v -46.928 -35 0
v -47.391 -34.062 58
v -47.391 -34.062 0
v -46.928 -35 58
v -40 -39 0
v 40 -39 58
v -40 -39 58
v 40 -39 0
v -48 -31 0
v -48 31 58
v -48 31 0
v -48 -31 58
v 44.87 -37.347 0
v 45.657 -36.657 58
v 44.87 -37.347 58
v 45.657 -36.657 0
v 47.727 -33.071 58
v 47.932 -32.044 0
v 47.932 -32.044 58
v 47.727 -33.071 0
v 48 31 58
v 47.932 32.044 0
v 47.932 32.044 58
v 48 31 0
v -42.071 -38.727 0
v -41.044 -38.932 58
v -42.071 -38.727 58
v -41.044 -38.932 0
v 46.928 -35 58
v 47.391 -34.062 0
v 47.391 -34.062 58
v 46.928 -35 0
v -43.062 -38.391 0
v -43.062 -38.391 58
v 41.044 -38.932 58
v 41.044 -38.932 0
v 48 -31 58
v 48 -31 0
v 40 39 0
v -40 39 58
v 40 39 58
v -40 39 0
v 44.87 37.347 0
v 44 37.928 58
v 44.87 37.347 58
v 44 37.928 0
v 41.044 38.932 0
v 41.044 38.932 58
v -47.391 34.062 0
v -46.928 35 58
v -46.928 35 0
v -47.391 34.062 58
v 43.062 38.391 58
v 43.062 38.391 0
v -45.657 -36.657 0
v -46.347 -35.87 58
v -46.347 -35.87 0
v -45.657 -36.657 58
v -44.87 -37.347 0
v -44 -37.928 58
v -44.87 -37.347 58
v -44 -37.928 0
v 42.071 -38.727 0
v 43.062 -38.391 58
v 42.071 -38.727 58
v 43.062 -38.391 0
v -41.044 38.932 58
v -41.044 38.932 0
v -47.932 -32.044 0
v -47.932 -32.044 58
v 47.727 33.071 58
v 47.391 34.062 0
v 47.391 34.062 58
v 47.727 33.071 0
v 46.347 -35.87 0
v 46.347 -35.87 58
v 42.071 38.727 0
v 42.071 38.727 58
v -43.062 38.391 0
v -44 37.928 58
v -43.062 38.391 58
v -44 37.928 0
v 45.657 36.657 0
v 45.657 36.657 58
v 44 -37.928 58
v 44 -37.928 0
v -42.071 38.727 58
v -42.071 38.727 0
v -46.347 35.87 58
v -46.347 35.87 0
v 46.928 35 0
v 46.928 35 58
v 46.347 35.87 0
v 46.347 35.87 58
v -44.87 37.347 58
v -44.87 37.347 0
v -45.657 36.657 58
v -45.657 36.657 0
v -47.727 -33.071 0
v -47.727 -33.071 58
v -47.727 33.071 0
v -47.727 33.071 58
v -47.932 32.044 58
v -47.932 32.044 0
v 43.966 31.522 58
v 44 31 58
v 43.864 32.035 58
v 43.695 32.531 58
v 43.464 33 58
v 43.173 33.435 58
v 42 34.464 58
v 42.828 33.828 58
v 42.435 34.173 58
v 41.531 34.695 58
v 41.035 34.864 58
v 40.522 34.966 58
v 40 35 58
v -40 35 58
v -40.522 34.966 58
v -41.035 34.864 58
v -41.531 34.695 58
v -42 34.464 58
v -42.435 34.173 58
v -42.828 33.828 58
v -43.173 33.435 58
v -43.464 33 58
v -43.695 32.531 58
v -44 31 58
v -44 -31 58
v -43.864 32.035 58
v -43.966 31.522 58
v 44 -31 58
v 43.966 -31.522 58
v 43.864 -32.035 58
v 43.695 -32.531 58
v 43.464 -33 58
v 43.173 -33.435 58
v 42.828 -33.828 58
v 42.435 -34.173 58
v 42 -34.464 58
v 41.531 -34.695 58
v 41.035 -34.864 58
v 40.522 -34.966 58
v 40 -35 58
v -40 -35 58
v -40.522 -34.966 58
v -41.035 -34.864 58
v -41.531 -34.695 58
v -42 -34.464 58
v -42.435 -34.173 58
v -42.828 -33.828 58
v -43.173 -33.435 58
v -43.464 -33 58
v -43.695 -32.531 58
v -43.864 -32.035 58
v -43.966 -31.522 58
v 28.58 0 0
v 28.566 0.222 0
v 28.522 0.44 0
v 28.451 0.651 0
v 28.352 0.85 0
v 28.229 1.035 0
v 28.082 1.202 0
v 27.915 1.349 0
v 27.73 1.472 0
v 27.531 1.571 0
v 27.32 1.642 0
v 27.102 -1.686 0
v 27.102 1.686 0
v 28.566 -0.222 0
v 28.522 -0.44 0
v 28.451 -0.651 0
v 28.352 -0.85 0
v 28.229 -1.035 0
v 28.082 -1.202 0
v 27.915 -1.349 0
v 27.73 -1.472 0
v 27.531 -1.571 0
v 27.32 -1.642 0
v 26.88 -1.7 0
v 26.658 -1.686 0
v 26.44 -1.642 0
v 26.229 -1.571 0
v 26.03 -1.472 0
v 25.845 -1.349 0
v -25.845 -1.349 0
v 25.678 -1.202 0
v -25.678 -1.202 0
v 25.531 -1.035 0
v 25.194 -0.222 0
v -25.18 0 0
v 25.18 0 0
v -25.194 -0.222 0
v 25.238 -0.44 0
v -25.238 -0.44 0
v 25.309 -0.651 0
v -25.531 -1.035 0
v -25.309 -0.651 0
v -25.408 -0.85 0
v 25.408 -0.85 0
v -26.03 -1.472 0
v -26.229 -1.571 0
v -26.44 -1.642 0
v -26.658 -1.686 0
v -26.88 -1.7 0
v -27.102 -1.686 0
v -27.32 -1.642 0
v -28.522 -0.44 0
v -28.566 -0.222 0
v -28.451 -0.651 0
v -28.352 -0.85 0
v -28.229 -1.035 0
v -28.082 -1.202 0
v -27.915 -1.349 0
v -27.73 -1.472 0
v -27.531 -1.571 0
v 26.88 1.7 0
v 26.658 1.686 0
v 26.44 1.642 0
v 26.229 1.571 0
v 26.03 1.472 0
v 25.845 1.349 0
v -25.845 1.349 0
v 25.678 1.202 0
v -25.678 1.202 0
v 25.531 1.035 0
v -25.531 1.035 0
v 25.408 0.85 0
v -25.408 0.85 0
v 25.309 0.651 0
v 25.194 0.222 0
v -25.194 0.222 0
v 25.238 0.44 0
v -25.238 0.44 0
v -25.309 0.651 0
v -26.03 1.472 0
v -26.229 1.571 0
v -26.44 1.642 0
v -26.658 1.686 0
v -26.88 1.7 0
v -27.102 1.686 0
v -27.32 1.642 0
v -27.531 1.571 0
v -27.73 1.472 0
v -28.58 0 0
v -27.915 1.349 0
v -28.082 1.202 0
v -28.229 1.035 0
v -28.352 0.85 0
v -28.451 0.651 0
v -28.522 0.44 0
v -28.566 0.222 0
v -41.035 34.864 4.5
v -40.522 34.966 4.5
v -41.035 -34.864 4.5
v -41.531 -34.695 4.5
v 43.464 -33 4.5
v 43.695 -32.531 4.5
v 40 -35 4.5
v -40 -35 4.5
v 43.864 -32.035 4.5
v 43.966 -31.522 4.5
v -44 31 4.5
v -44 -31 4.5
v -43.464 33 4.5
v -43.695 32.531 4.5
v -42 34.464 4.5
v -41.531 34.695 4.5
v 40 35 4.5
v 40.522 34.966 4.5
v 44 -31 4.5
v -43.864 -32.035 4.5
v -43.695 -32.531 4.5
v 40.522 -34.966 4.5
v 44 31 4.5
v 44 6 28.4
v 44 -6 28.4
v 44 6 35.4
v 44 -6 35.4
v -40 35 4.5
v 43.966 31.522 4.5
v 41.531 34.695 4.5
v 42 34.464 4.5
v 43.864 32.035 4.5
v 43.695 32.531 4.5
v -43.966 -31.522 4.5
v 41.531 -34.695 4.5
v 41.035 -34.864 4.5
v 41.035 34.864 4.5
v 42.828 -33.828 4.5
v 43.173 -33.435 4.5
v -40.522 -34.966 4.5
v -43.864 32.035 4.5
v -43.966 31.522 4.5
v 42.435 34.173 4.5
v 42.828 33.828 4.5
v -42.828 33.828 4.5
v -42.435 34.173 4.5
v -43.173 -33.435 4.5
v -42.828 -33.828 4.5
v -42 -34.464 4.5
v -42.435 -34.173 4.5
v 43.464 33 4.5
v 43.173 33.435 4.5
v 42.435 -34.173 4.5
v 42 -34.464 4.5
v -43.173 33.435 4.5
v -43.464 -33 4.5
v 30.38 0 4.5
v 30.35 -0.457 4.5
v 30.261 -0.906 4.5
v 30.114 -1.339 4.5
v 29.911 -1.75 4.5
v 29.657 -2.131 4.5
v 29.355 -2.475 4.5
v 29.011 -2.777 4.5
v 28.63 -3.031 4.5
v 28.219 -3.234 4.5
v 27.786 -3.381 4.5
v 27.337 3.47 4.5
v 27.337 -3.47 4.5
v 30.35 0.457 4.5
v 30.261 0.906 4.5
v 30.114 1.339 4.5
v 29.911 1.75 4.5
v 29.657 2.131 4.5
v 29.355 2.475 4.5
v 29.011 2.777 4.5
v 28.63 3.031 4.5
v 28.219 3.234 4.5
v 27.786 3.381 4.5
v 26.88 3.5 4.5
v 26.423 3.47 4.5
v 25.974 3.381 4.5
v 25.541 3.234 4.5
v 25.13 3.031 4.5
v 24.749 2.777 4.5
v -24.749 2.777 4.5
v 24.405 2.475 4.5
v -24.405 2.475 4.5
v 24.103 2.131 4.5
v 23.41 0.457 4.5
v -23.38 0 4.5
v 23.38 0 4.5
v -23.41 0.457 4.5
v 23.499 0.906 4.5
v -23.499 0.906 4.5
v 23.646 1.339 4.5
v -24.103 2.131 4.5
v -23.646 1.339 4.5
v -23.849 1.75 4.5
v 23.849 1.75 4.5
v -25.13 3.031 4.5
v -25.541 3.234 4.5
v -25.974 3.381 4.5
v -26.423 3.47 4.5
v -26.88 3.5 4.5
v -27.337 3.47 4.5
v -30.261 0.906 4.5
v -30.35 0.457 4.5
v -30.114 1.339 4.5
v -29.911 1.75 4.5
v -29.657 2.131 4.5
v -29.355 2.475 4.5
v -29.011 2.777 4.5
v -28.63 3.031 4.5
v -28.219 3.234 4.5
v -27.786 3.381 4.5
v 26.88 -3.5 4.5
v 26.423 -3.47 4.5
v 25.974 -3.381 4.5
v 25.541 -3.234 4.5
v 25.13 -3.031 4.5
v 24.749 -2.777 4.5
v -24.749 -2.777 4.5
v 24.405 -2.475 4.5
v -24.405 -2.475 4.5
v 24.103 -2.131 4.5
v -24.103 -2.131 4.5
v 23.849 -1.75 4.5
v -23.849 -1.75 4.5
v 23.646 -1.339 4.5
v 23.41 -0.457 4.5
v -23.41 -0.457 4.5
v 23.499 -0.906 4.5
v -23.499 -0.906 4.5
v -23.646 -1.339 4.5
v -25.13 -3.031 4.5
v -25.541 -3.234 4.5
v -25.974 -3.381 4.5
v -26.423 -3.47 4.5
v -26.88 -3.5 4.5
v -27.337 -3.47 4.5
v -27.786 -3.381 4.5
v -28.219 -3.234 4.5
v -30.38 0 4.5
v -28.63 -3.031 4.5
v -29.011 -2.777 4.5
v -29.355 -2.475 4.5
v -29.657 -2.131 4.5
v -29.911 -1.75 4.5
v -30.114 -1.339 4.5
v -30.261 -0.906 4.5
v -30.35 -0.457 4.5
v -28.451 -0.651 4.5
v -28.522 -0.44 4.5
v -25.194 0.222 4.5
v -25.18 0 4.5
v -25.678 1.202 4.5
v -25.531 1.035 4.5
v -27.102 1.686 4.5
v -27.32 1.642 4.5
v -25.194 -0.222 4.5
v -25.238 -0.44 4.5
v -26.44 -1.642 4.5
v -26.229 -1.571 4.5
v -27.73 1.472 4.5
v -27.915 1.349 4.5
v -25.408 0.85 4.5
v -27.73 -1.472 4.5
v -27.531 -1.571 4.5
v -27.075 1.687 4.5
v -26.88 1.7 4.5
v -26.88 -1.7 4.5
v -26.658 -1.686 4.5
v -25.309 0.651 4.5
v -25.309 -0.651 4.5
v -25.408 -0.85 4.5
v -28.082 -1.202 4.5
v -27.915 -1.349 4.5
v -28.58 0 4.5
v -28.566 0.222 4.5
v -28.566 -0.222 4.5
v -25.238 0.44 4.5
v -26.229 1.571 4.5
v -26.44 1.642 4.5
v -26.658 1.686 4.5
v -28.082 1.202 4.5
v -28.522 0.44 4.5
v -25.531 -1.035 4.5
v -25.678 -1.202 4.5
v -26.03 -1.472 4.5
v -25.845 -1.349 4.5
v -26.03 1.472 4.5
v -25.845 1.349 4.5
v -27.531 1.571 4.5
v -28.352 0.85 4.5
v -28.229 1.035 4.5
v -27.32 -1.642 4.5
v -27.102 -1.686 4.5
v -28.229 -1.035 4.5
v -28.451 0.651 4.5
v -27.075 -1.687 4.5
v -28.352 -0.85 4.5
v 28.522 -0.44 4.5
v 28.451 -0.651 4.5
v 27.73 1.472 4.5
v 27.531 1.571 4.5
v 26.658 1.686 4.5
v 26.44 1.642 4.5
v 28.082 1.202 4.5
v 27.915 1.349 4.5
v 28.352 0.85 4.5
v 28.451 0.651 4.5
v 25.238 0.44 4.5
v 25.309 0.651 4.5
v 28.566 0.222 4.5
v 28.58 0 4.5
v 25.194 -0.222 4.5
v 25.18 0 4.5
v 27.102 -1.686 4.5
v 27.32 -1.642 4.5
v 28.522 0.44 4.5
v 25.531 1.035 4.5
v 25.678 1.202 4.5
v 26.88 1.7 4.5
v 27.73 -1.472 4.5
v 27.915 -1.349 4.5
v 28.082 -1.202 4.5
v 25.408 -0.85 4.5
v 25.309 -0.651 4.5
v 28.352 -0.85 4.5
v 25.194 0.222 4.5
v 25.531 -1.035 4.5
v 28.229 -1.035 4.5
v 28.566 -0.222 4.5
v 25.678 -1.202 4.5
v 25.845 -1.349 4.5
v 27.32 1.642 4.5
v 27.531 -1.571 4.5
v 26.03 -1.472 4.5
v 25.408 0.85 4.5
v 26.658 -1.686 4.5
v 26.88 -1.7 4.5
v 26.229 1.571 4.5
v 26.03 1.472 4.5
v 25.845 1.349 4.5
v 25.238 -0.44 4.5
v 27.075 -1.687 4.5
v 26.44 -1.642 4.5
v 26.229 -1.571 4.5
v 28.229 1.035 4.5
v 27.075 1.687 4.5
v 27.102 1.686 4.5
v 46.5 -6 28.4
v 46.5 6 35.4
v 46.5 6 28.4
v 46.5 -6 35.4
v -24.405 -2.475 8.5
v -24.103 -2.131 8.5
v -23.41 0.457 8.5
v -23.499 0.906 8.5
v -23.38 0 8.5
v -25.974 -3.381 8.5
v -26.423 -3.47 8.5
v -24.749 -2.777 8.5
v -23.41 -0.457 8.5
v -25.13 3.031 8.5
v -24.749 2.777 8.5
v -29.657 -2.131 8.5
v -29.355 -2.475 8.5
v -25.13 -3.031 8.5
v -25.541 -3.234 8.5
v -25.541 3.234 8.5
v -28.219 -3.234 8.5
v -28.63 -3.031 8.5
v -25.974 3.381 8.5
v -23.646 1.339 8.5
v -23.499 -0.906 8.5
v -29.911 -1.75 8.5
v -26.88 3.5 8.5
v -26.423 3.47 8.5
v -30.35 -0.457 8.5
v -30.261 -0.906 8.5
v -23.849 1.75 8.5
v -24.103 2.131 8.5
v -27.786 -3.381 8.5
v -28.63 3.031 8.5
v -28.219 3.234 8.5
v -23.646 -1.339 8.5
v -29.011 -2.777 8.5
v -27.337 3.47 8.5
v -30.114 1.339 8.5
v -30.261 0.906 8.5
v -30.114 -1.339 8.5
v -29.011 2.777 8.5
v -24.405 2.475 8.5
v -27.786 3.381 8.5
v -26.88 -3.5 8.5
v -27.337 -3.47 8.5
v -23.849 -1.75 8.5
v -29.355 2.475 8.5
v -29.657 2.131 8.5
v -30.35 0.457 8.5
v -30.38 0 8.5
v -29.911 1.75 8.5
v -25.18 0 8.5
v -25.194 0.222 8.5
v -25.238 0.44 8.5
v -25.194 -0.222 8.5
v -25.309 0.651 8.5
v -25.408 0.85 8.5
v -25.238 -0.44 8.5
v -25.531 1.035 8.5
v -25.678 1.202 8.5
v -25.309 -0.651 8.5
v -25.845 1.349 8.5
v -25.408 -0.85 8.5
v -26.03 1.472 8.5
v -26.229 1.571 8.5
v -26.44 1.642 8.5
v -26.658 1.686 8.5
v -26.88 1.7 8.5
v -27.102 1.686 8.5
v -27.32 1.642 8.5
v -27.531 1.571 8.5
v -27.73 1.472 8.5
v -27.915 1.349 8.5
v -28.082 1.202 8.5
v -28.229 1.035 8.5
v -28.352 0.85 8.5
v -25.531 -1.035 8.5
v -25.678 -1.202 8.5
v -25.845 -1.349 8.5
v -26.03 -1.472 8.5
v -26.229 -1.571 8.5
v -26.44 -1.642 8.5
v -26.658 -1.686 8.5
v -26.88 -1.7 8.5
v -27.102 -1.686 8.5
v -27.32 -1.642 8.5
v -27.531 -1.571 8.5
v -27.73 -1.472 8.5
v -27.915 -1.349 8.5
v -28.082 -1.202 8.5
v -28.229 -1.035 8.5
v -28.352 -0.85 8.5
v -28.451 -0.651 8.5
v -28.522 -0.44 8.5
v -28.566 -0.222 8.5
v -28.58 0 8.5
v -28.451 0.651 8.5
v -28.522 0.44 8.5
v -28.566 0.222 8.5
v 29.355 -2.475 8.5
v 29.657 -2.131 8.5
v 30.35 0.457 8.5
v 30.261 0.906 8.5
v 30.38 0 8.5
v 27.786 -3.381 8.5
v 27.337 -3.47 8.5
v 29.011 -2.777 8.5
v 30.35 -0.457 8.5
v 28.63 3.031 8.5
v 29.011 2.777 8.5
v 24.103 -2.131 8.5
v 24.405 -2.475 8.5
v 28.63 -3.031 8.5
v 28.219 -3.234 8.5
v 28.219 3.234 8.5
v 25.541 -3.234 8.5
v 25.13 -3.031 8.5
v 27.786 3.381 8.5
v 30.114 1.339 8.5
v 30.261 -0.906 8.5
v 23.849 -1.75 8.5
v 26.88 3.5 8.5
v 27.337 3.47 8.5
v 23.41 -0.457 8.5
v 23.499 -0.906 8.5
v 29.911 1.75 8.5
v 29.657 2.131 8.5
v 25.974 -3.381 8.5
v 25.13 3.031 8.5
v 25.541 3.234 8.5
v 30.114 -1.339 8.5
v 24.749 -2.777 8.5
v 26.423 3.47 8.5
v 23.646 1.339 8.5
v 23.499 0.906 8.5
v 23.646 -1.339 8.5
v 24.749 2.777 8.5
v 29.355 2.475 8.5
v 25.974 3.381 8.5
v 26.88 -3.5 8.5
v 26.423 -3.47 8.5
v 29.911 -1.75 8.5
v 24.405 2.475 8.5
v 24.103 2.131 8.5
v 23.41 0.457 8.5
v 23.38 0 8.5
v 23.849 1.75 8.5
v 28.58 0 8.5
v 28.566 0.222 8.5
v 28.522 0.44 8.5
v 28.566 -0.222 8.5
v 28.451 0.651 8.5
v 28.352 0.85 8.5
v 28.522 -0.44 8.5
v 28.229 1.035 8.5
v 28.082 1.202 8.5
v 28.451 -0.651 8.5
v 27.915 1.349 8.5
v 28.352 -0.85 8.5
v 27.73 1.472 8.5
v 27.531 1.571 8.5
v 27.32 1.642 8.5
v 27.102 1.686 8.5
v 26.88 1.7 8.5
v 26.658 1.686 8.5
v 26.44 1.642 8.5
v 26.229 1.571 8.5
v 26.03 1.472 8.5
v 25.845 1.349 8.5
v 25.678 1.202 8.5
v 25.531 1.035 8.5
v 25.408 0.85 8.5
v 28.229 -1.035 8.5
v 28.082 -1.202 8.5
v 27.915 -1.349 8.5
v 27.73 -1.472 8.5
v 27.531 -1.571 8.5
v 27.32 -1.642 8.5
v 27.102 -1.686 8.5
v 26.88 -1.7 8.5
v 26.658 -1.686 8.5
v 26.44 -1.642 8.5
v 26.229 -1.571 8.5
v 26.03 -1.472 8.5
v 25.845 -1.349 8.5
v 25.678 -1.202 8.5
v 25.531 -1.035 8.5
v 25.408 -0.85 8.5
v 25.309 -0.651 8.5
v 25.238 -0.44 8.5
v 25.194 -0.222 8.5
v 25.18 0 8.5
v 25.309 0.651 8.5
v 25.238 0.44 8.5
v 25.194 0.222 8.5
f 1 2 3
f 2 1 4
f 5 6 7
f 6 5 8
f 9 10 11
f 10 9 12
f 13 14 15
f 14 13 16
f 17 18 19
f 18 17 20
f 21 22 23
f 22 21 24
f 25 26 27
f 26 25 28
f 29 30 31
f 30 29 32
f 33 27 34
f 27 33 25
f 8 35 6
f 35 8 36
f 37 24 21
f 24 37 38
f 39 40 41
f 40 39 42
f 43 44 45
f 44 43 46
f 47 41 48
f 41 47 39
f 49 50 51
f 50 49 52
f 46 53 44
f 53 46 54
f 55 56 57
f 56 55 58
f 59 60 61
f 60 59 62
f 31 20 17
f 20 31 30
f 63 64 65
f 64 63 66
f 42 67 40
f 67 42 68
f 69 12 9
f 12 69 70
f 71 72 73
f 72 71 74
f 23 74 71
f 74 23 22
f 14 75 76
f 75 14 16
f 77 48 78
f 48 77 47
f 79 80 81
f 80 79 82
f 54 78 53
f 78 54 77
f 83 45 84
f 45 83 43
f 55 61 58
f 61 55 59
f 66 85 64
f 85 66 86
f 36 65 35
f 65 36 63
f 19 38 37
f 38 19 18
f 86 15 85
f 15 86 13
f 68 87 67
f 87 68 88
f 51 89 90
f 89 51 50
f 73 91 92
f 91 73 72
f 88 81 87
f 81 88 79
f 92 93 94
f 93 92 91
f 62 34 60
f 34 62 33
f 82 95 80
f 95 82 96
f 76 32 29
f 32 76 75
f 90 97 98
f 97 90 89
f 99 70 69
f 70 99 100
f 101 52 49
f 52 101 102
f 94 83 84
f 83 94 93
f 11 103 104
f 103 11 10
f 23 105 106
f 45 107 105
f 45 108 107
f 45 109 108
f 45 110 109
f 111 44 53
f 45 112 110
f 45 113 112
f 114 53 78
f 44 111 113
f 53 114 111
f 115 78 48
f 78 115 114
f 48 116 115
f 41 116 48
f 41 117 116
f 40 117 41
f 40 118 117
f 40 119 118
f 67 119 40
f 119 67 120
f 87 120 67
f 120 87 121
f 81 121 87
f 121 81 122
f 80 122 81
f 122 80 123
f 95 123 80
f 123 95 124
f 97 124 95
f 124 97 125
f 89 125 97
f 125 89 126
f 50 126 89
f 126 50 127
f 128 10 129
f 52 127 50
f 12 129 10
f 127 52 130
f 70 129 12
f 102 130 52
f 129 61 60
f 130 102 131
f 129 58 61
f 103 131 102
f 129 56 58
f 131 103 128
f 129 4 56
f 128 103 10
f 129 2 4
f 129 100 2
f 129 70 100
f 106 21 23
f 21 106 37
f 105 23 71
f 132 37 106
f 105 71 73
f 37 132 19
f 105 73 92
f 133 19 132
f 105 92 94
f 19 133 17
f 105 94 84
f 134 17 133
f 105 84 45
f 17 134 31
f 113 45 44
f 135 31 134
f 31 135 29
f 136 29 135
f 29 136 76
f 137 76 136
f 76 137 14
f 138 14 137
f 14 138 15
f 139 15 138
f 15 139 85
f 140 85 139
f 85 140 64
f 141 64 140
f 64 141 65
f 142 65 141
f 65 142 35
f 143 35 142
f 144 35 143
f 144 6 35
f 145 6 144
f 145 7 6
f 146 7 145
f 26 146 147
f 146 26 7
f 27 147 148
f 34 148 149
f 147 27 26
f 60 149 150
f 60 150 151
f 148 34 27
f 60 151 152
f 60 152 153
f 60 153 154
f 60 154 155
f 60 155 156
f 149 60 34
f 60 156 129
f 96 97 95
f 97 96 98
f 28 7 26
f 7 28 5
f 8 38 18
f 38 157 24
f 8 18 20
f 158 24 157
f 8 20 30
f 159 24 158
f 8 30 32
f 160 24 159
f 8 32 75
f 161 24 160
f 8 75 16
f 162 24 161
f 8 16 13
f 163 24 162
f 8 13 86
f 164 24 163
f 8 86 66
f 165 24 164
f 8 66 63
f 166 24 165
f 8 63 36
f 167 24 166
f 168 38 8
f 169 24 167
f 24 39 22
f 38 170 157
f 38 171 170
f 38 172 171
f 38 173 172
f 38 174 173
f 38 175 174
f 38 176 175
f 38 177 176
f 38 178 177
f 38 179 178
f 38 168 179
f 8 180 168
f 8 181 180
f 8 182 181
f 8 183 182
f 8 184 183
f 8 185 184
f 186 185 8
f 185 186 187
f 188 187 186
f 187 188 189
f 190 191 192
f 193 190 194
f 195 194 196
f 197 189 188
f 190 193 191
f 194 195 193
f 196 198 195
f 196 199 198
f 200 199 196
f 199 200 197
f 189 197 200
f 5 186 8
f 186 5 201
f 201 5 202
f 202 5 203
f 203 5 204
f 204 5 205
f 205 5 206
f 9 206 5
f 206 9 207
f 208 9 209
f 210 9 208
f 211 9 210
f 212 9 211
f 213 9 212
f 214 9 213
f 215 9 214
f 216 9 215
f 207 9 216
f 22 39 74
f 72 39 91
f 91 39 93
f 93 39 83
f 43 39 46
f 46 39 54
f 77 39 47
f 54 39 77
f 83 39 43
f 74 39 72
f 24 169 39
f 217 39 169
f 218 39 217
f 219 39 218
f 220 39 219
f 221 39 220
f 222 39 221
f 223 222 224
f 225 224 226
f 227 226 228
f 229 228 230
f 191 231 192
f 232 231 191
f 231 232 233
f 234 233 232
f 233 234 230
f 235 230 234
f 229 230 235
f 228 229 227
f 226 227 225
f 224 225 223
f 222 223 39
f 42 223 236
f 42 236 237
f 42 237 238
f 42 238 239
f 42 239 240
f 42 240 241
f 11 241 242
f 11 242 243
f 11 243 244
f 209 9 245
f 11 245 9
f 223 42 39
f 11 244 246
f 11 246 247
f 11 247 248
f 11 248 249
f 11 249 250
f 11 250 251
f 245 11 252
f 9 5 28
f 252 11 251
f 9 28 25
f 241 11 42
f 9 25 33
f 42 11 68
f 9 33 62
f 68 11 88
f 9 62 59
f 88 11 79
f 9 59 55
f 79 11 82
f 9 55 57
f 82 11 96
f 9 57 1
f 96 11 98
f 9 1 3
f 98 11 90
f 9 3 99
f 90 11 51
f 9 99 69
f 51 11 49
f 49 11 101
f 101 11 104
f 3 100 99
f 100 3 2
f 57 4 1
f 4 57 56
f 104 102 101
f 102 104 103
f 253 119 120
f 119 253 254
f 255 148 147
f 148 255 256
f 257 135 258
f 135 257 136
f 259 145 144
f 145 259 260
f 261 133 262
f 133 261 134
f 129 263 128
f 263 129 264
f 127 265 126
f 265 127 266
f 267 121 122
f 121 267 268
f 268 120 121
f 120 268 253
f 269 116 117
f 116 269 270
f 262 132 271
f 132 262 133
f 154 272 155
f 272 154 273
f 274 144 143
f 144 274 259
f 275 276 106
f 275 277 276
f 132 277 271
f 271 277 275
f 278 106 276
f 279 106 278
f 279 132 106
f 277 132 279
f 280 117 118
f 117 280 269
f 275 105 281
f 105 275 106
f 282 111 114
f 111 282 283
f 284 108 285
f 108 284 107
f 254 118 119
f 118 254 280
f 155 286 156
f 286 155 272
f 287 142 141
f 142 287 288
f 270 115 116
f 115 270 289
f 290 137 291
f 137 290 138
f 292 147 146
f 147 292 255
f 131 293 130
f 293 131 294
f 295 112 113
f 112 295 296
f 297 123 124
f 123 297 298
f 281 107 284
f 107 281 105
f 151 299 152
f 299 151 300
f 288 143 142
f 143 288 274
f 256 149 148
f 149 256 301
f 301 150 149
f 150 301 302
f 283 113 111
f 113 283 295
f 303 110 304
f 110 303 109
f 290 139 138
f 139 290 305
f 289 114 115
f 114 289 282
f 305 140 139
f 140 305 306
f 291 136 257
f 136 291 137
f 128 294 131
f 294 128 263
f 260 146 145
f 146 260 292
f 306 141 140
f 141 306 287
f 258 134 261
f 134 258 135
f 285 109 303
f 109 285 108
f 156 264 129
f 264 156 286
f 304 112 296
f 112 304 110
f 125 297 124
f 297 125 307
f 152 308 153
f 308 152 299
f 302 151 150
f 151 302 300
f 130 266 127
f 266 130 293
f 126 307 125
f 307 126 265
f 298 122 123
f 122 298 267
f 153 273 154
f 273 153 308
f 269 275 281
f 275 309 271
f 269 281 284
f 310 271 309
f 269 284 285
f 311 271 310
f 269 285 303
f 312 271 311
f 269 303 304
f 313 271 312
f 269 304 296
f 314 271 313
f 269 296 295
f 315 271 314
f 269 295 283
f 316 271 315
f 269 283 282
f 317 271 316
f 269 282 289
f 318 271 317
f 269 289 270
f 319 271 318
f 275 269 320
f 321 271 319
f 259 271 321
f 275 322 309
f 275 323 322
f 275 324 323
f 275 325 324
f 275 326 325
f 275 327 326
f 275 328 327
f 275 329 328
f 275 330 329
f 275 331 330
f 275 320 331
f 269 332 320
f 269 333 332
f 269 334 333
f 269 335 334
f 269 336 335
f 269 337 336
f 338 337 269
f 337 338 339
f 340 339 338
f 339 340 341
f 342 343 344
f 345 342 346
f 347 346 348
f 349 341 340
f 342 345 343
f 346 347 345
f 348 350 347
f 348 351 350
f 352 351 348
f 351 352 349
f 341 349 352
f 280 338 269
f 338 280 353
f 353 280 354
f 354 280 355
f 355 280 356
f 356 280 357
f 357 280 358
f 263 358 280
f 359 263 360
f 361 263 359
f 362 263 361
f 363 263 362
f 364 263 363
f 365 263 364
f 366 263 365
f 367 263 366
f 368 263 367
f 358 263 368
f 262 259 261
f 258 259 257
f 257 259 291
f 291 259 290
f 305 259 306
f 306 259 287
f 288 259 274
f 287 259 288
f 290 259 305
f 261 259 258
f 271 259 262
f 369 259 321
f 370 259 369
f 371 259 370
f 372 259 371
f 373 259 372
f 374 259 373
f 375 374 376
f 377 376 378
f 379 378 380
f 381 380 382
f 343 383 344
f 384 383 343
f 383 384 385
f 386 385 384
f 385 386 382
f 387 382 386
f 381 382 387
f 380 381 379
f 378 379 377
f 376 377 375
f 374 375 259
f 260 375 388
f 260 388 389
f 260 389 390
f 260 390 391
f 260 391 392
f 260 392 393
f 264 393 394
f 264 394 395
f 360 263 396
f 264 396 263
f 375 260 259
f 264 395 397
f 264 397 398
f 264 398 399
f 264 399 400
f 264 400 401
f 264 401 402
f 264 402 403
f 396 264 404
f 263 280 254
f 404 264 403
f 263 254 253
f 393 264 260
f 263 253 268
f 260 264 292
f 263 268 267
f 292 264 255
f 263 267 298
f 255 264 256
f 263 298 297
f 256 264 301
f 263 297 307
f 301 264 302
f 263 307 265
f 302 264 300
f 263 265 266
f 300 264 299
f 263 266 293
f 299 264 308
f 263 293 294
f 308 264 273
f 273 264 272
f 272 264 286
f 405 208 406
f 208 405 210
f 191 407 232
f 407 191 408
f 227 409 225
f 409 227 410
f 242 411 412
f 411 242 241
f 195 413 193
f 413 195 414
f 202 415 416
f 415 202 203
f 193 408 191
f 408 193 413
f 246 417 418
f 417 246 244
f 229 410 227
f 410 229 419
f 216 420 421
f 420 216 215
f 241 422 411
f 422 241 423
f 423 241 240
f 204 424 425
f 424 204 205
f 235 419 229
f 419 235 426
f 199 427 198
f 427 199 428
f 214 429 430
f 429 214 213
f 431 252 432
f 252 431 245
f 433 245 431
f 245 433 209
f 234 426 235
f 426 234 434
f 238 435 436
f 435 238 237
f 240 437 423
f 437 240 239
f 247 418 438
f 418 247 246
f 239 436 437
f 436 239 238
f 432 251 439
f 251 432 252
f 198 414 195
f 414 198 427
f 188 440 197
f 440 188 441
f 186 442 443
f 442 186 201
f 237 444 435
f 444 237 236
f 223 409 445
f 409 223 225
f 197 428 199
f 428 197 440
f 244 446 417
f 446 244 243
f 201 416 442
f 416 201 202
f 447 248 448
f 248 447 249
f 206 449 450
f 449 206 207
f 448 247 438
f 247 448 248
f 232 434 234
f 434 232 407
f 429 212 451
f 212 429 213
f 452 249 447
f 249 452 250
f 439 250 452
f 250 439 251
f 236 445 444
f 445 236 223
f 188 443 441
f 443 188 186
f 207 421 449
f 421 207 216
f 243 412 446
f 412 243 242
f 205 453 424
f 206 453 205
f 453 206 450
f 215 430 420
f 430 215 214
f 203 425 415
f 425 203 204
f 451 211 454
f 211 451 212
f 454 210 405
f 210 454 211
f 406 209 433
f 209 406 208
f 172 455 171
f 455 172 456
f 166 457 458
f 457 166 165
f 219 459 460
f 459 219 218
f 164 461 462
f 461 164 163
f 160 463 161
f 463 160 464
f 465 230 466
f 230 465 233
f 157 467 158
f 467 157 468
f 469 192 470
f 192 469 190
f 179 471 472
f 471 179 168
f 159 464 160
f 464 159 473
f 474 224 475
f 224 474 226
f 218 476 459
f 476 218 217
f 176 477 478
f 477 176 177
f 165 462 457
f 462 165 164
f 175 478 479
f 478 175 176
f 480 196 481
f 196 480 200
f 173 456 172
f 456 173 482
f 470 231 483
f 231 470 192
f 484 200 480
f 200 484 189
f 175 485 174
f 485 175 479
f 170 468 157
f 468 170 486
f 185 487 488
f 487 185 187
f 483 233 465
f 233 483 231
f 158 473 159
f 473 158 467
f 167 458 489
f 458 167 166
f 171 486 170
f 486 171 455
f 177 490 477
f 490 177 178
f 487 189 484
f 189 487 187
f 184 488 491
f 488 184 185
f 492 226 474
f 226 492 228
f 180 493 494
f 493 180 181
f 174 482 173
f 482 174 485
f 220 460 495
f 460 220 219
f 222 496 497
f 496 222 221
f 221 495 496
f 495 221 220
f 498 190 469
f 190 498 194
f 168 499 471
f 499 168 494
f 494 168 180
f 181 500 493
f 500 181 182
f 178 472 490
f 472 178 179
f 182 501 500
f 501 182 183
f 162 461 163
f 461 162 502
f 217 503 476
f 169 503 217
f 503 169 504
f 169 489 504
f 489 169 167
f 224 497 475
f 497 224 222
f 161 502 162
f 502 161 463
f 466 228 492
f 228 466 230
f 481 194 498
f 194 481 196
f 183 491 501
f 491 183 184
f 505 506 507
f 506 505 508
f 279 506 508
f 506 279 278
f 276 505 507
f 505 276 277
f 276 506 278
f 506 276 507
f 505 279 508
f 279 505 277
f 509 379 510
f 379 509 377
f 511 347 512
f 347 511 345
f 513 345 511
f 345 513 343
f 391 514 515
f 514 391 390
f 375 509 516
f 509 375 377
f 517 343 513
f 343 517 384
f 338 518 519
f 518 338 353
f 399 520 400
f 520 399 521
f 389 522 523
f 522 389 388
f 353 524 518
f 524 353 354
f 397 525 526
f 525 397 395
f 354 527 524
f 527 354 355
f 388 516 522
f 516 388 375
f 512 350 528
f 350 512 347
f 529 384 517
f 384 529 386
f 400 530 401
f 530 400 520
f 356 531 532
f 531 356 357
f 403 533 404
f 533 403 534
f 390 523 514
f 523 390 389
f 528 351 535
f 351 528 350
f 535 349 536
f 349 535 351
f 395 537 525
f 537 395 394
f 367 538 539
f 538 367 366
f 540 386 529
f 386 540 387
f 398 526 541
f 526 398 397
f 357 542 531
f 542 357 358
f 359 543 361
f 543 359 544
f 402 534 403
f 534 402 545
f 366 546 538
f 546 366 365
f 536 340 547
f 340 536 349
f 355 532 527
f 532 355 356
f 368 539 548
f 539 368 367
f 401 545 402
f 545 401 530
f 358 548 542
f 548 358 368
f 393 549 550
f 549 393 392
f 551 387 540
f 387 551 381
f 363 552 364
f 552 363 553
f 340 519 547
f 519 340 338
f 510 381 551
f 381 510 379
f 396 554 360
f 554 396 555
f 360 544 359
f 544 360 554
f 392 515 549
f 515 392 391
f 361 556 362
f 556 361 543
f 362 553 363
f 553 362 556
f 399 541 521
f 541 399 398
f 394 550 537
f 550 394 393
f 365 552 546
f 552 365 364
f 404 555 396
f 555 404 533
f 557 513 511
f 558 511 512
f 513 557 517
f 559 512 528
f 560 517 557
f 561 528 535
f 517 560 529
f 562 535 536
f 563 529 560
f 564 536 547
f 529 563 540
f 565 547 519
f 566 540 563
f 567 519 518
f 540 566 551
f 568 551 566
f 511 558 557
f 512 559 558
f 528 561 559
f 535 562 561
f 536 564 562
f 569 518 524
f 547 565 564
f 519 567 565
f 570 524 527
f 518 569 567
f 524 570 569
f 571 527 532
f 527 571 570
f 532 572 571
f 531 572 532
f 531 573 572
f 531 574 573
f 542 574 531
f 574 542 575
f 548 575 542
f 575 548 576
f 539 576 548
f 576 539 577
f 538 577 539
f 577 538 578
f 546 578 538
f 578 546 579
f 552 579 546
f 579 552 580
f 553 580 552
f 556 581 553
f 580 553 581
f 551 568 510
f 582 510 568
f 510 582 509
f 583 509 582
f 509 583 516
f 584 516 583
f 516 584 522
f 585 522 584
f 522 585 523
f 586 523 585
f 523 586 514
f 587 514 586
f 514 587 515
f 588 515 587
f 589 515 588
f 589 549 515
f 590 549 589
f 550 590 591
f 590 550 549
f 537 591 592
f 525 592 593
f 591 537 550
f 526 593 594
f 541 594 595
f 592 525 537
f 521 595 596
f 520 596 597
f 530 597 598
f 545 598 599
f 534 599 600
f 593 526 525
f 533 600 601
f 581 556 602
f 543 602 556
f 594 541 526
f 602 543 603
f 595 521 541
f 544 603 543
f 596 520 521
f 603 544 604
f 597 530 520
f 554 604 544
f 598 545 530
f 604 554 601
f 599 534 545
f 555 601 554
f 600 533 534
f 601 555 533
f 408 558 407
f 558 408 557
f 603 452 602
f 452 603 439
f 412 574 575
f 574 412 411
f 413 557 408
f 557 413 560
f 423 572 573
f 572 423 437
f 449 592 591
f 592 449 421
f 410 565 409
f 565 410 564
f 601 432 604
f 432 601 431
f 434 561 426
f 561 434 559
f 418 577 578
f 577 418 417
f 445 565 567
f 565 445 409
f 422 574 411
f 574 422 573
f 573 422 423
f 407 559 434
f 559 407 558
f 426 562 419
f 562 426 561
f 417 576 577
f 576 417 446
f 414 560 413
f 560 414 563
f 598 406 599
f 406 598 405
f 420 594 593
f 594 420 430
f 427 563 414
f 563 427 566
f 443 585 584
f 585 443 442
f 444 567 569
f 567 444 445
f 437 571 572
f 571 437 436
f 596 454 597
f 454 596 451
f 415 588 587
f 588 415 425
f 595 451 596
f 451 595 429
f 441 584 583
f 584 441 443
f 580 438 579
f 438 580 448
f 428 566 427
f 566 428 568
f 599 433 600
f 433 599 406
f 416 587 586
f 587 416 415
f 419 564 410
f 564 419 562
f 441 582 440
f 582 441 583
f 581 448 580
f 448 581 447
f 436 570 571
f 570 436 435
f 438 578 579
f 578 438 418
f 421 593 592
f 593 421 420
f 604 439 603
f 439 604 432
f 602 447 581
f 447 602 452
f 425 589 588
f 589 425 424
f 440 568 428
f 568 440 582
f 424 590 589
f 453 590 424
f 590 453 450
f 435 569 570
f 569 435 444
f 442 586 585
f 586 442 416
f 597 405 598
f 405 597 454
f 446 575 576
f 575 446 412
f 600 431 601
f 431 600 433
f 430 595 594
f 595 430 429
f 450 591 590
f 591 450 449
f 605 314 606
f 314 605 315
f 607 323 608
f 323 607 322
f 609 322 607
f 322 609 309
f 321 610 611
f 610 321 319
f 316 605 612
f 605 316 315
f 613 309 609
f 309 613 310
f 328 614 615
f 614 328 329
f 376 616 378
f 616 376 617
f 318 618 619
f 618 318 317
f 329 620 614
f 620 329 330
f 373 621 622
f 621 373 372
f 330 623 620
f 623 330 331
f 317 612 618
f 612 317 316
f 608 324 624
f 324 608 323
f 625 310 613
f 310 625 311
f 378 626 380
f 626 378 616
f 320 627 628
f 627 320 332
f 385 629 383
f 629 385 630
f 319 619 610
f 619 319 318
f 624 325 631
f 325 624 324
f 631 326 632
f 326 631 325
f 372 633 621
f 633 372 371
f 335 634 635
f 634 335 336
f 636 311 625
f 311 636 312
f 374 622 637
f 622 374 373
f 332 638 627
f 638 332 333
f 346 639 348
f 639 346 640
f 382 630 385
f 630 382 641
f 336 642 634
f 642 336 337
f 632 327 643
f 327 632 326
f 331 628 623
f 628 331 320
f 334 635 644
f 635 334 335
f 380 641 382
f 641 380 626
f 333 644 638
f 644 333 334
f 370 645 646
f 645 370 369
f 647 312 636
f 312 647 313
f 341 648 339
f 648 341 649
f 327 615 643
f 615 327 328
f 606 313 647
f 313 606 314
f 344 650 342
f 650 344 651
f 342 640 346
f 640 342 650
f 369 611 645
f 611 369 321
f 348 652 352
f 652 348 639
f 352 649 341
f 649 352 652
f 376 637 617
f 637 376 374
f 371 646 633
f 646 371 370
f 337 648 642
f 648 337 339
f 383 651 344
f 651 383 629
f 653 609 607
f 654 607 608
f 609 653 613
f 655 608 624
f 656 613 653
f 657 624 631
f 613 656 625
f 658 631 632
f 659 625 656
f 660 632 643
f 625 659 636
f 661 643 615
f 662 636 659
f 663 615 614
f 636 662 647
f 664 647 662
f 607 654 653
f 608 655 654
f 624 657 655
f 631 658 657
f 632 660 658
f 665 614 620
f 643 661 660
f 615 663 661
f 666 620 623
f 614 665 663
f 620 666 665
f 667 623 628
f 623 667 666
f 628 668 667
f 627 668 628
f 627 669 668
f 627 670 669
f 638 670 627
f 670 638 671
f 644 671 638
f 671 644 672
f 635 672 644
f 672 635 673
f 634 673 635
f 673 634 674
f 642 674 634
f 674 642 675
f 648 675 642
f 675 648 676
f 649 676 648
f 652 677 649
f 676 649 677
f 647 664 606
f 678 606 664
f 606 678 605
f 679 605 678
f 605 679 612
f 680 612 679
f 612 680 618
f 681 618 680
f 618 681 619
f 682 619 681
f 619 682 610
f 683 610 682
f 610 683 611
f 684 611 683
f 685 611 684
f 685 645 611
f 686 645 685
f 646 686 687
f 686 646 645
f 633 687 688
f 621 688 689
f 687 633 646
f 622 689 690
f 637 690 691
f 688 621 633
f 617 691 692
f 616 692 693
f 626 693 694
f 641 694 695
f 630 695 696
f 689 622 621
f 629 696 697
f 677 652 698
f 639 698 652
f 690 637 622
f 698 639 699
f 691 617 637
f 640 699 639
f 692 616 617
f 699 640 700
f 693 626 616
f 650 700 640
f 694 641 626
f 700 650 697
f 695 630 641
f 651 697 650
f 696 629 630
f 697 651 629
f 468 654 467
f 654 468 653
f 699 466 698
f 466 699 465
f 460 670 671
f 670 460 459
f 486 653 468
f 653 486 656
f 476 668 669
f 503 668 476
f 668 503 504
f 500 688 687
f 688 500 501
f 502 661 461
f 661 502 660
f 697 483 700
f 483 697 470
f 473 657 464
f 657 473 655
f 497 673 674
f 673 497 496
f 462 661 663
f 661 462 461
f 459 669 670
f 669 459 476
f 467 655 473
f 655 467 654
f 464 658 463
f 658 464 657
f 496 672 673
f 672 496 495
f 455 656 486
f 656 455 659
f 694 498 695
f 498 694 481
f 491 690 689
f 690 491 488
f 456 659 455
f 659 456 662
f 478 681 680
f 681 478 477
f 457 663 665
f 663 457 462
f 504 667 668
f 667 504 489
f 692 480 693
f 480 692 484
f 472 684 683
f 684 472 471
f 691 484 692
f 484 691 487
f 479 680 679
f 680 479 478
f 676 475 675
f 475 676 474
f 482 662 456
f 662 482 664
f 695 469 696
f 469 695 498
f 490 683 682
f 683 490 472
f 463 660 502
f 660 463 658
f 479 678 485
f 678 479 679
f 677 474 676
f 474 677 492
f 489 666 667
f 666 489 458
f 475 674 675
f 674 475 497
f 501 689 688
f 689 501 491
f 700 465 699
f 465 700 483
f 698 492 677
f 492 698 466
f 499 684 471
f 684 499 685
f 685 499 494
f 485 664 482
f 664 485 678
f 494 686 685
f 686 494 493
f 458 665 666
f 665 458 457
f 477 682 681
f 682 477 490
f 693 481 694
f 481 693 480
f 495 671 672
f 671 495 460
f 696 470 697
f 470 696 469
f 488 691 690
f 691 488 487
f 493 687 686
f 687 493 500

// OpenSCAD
// ============================================================================
// Get Me An Alt — Parametric OpenSCAD Module
// Part: PRT-01 — Left 2020 Rail Drive Block & NEMA17 Stepper Mount (motor-end-block)
// Function: Anchors left rail end and drives the GT2 timing belt.
// Target Bounding Box (mm): [96, 78, 58]
// Print Material: PETG | Min Wall: >= 1.6mm | Tolerance: 0.2mm
// ============================================================================
$fn = 48;
part_width = 96;
part_depth = 78;
part_height = 58;
wall_thickness = 4;
floor_thickness = 4.5;
corner_radius = 8;
tolerance = 0.2;
m3_clearance_d = 3.4; // M3 screw clearance hole (3.0mm + 2*0.2mm)

module rounded_rect_prism(w, d, h, r) {
  cr = max(0.5, min(r, min(w, d) / 2 - 0.1));
  linear_extrude(height = h)
    offset(r = cr)
      offset(r = -cr)
        square([w, d], center = true);
}

module part_motor_end_block() {
  union() {
    difference() {
      rounded_rect_prism(part_width, part_depth, part_height, corner_radius);
      translate([0, 0, floor_thickness])
        rounded_rect_prism(
          part_width - 2 * wall_thickness,
          part_depth - 2 * wall_thickness,
          part_height,
          max(1.0, corner_radius - wall_thickness)
        );
    translate([-part_width * 0.28, 0, -1]) cylinder(h = floor_thickness + 2, d = m3_clearance_d);
    translate([part_width * 0.28, 0, -1]) cylinder(h = floor_thickness + 2, d = m3_clearance_d);
      // Cable / USB-C pass-through slot on side wall
      translate([part_width / 2 - wall_thickness - 1, 0, part_height * 0.55])
        cube([wall_thickness + 3, 12, 7], center = true);
    }
    // Internal M3 PCB standoff bosses
    for (sx = [-part_width * 0.28, part_width * 0.28]) {
      translate([sx, 0, floor_thickness])
        difference() {
          cylinder(h = 4.0, d = 7.0);
          translate([0, 0, -0.5]) cylinder(h = 5.0, d = m3_clearance_d);
        }
    }
  }
}

part_motor_end_block();
